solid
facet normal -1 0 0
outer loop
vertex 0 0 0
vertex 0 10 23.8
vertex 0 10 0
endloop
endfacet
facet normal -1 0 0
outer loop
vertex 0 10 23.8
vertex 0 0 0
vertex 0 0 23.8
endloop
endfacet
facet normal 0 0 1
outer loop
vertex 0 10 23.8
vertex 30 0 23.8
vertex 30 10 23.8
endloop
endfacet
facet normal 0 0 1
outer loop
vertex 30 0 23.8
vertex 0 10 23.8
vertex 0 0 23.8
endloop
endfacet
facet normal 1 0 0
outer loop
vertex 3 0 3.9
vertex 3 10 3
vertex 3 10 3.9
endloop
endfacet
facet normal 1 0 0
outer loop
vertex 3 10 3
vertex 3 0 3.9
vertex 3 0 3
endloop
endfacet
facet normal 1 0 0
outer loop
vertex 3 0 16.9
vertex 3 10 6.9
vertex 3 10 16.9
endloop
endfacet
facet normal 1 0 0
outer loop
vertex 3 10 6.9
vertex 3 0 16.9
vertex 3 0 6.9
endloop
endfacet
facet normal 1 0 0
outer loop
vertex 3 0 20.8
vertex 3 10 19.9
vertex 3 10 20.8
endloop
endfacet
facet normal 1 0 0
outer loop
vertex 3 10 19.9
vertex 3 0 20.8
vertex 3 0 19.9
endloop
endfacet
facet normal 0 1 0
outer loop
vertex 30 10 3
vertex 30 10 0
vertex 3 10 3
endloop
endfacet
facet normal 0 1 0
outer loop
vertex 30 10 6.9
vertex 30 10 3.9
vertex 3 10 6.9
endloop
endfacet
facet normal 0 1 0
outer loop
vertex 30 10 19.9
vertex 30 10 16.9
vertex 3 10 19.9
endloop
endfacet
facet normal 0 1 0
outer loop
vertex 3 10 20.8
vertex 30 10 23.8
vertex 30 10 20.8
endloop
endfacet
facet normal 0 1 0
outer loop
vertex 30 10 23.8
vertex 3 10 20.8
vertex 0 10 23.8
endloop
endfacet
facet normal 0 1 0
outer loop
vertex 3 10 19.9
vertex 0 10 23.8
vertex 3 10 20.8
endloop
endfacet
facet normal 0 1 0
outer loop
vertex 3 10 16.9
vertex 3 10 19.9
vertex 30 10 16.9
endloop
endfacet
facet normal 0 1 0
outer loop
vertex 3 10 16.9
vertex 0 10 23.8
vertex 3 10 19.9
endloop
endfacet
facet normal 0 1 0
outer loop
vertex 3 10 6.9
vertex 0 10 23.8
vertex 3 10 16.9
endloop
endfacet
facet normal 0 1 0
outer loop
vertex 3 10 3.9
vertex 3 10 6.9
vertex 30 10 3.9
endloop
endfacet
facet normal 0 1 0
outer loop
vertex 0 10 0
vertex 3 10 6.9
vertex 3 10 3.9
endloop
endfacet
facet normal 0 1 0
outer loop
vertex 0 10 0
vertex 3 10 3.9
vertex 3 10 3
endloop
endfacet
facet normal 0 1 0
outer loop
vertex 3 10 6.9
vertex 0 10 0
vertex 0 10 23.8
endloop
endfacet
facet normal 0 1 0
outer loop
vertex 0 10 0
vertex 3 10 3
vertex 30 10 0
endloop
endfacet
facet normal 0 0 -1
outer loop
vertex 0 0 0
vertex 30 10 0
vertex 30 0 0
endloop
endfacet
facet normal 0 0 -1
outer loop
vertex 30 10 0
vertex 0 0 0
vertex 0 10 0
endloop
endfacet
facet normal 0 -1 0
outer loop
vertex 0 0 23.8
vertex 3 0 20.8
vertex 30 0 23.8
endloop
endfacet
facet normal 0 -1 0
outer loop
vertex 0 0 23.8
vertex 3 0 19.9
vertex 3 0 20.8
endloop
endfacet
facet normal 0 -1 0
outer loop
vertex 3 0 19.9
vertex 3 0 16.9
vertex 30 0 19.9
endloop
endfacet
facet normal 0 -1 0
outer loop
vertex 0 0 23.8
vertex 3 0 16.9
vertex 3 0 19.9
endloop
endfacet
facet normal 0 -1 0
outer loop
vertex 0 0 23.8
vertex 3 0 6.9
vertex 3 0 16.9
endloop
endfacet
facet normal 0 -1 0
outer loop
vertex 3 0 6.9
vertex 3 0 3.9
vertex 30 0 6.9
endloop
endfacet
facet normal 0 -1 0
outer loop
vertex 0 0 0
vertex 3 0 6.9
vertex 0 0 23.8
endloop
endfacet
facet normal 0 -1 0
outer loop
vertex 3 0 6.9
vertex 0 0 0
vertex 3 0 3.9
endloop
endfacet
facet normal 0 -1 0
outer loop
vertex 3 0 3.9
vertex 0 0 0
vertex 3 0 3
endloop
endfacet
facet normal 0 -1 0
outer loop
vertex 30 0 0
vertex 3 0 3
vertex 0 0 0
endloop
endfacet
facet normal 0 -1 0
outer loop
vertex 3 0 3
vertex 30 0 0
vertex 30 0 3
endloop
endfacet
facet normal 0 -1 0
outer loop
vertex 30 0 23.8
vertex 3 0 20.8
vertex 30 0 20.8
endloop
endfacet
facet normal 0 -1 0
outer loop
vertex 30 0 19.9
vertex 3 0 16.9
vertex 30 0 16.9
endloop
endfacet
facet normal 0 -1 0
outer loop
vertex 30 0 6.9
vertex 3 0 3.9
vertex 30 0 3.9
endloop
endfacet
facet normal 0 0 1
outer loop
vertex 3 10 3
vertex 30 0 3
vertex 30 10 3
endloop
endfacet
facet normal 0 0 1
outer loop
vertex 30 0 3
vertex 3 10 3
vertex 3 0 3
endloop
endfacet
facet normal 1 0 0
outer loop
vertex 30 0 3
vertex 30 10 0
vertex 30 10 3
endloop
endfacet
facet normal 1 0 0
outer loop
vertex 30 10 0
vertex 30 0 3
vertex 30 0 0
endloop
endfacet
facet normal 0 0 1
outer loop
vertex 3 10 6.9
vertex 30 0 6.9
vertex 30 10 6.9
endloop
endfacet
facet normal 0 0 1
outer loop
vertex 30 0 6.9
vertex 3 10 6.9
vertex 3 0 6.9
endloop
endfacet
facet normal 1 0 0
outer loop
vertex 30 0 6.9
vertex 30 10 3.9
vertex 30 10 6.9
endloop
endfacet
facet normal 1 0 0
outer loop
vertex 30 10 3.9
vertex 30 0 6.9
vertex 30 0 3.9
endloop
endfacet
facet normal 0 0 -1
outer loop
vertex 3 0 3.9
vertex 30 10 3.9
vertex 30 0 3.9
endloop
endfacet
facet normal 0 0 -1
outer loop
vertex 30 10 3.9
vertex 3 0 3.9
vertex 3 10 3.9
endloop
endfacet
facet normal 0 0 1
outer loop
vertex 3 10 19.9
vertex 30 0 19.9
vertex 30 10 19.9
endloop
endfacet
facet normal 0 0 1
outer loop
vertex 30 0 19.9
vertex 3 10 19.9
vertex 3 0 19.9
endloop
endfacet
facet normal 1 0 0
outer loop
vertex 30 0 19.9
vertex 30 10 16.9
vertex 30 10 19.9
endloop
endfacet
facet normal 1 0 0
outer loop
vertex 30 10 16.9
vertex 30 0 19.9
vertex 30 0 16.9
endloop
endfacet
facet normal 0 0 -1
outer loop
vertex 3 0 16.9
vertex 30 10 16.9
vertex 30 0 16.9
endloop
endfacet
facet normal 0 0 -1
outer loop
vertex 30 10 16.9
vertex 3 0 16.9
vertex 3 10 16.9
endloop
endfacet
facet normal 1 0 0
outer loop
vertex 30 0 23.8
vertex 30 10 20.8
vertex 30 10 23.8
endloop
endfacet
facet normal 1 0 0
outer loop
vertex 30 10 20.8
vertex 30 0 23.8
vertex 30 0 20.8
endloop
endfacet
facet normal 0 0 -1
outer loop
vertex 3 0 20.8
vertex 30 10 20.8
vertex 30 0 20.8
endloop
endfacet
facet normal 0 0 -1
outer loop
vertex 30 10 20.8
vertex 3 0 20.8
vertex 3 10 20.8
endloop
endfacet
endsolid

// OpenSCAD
//brauverein@andrebetz.de

dHold       = 0.9;
distance    = 10;
long        = 30;
bright      = 10;
thick       = 3;

hight = thick + dHold + thick + distance + thick + dHold + thick;
cube([thick,bright,hight]);
cube([long,bright,thick]);
translate([0,0,thick+dHold]) cube([long,bright,thick]);
translate([0,0,thick+dHold+thick+distance]) cube([long,bright,thick]);
translate([0,0,thick+dHold+thick+distance+thick+dHold]) cube([long,bright,thick]);
